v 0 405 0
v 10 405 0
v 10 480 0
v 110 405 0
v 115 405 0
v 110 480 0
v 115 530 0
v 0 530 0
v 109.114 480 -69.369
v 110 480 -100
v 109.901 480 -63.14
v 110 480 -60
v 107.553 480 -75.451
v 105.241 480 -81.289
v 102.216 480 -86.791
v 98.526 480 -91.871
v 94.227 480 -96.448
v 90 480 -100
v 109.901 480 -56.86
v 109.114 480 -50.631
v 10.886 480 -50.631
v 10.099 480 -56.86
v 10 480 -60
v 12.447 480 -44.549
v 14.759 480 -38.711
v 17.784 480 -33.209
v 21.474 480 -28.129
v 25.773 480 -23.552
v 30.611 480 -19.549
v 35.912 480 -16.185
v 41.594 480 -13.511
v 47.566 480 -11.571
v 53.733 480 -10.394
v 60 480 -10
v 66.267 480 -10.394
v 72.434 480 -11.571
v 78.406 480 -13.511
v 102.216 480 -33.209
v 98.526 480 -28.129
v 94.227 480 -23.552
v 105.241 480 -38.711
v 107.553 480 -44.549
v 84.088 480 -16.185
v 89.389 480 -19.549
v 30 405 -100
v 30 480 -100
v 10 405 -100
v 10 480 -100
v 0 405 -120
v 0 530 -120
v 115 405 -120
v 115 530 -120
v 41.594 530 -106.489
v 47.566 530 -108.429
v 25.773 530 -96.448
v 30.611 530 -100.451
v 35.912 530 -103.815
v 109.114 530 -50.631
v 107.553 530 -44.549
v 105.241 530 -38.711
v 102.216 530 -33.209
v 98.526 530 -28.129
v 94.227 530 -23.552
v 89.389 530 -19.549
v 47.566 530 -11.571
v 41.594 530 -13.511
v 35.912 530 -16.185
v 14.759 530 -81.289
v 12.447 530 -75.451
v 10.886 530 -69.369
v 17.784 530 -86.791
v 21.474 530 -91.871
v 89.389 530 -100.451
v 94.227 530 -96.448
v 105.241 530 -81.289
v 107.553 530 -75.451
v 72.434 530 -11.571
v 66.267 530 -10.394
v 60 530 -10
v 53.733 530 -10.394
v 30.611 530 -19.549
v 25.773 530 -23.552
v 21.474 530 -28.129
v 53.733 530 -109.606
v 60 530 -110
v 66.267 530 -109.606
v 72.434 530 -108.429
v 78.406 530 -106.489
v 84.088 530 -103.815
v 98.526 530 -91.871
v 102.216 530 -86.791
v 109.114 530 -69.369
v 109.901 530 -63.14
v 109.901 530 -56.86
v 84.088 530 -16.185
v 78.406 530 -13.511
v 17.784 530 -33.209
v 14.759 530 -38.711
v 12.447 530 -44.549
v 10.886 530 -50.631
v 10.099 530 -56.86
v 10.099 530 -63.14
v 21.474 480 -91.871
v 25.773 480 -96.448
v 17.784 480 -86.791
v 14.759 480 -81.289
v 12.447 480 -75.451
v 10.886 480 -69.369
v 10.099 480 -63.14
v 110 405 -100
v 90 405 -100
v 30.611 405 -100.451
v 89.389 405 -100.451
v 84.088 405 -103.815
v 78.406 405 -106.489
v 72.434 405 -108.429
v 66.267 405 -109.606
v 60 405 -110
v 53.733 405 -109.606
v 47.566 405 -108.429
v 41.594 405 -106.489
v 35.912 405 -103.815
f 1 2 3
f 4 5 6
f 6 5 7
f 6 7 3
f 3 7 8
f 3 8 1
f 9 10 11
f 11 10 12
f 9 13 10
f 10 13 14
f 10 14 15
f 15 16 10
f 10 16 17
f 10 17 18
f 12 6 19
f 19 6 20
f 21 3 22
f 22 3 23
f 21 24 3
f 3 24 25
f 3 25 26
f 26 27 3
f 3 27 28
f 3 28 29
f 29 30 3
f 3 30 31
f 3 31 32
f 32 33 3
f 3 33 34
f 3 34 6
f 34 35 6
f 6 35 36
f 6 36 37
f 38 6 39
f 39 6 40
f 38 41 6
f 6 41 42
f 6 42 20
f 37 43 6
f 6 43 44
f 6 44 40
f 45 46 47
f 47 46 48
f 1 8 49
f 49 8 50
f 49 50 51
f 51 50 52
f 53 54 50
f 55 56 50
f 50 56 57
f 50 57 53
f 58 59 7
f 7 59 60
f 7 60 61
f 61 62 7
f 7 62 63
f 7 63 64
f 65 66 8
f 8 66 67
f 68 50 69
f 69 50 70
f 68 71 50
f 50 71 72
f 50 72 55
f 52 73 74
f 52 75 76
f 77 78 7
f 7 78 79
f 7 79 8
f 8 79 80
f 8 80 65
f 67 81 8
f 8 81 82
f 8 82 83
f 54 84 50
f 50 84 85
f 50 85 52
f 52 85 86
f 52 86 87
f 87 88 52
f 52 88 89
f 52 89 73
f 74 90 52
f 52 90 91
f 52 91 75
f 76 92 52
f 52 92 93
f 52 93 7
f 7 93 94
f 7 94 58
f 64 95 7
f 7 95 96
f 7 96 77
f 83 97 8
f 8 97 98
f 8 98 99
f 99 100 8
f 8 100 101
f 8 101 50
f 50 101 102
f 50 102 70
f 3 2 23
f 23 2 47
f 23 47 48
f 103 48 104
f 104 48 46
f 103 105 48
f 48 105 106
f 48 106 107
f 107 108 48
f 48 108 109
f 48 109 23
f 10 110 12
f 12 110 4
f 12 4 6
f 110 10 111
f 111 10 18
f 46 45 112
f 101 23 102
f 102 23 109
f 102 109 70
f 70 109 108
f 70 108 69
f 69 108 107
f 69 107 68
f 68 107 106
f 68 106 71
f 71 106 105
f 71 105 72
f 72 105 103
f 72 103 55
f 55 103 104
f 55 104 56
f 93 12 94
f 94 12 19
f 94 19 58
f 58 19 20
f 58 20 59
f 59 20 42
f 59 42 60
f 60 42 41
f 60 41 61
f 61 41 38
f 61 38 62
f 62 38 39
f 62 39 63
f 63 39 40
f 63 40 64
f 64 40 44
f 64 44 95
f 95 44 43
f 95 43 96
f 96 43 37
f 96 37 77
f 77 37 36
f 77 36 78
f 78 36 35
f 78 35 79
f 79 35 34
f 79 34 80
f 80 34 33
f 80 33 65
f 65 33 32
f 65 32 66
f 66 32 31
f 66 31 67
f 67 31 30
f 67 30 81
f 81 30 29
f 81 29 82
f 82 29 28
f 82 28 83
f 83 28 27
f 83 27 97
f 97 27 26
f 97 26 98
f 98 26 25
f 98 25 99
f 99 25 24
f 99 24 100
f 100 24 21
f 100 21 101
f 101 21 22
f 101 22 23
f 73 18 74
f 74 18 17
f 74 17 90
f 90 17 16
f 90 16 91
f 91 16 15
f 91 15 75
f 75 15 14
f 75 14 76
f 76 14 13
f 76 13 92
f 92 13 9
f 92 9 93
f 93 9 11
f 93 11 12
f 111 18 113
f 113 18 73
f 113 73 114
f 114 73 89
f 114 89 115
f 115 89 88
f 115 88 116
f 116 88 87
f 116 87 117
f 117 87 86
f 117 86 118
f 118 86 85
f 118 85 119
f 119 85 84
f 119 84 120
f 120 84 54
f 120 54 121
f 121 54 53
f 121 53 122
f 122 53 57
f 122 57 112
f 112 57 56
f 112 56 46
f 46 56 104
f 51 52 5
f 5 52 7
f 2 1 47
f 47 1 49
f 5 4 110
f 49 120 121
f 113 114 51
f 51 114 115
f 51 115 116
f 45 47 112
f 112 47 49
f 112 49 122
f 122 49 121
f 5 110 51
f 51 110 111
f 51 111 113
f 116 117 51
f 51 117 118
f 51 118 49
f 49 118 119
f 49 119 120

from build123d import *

# Parameters (mm, degrees)
SKETCH1_W                      = 670
SKETCH1_H                      = 120
BOSS_EXTRUDE1_DEPTH            = 530
SKETCH2_W                      = 100
SKETCH2_H                      = 200
SKETCH2_W_2                    = 650
SKETCH2_H_2                    = 250
CUT_EXTRUDE1_DEPTH             = 100
SKETCH3_R                      = 50
CUT_EXTRUDE2_DEPTH             = 260
F_12_0_12_DIAMETER_HOLE2_D     = 12
F_12_0_12_DIAMETER_HOLE2_DEPTH = 30
F_12_0_12_DIAMETER_HOLE2_TIP   = 3.605163714
SKETCH8_W                      = 650
SKETCH8_H                      = 50
BOSS_EXTRUDE2_DEPTH            = 5
SKETCH9_W                      = 10
SKETCH9_H                      = 250
CUT_EXTRUDE3_DEPTH             = 717
CUT_EXTRUDE4_DEPTH             = 5
SKETCH11_W                     = 10
SKETCH11_H                     = 100
BOSS_EXTRUDE3_DEPTH            = 78
BOSS_EXTRUDE3_2_DEPTH          = 78
BOSS_EXTRUDE3_3_DEPTH          = 78
SKETCH12_W                     = 20
SKETCH12_H                     = 30
CUT_EXTRUDE5_DEPTH             = 80
SKETCH15_W                     = 30
SKETCH15_H                     = 23.536156656
SKETCH15_H_2                   = 28.986603691
CUT_EXTRUDE7_DEPTH             = 35
SHELL1_T                       = -3
SKETCH16_W                     = 14
SKETCH16_H                     = 14
CUT_EXTRUDE8_DEPTH             = 35
SKETCH17_W                     = 5.729882812
SKETCH17_H                     = 17.428393554
SKETCH17_W_2                   = 13.369726562
SKETCH17_H_2                   = 3.342431641
BOSS_EXTRUDE4_DEPTH            = 5
SKETCH18_W                     = 670
SKETCH18_H                     = 280
CUT_EXTRUDE10_DEPTH            = 159
CUT_EXTRUDE11_DEPTH            = 863.670273187
CUT_EXTRUDE11_DEPTH_BACK       = 863.670273187
SKETCH19_W                     = 555
SKETCH19_H                     = 250
CUT_EXTRUDE12_DEPTH            = 556.450267801
CUT_EXTRUDE12_DEPTH_BACK       = 556.450267801
SKETCH20_W                     = 115
SKETCH20_H                     = 125


with BuildPart() as part:
    # Sketch1 → Boss-Extrude1 (new body)
    with BuildSketch(Plane(origin=(0, 0, 0), x_dir=(1, 0, 0), z_dir=(0, 1, 0))):
        with Locations((335, 60)):
            Rectangle(SKETCH1_W, SKETCH1_H)
    extrude(amount=BOSS_EXTRUDE1_DEPTH)

    # Sketch2 → Cut-Extrude1 (cut)
    with BuildSketch(Plane.XY):
        with Locations((60, 380)):
            Rectangle(SKETCH2_W, SKETCH2_H)
        with Locations((170, 380)):
            Rectangle(SKETCH2_W, SKETCH2_H)
        with Locations((280, 380)):
            Rectangle(SKETCH2_W, SKETCH2_H)
        with Locations((390, 380)):
            Rectangle(SKETCH2_W, SKETCH2_H)
        with Locations((500, 380)):
            Rectangle(SKETCH2_W, SKETCH2_H)
        with Locations((610, 380)):
            Rectangle(SKETCH2_W, SKETCH2_H)
        with Locations((335, 135)):
            Rectangle(SKETCH2_W_2, SKETCH2_H_2)
    extrude(amount=-CUT_EXTRUDE1_DEPTH, mode=Mode.SUBTRACT)

    # Sketch3 → Cut-Extrude2 (cut)
    with BuildSketch(Plane(origin=(0, 530, 0), x_dir=(1, 0, 0), z_dir=(0, 1, 0))):
        with Locations(Location((60, 60, 0), (0, 0, 270))):
            Circle(SKETCH3_R)
        with Locations(Location((170, 60, 0), (0, 0, 270))):
            Circle(SKETCH3_R)
        with Locations(Location((280, 60, 0), (0, 0, 270))):
            Circle(SKETCH3_R)
        with Locations(Location((390, 60, 0), (0, 0, 270))):
            Circle(SKETCH3_R)
        with Locations(Location((500, 60, 0), (0, 0, 270))):
            Circle(SKETCH3_R)
        with Locations(Location((610, 60, 0), (0, 0, 270))):
            Circle(SKETCH3_R)
    extrude(amount=-CUT_EXTRUDE2_DEPTH, mode=Mode.SUBTRACT)

    # Ø12.0 (12) Diameter Hole2
    with Locations(Plane(origin=(59.704642413, 270, -102.411697903), x_dir=(0, 0, 1), z_dir=(0, 1, 0))):
        with Locations((0, 0), (-0.195888006, 111.8520513), (0.014838595, 221.167624818), (-0.341843303, 331.364008353), (0.657723149, 441.008646429), (1.288998006, 549.811854685)):
            Hole(F_12_0_12_DIAMETER_HOLE2_D / 2, depth=F_12_0_12_DIAMETER_HOLE2_DEPTH)
            with Locations((0, 0, -(F_12_0_12_DIAMETER_HOLE2_DEPTH + F_12_0_12_DIAMETER_HOLE2_TIP / 2))):  # 118° drill point
                Cone(0, F_12_0_12_DIAMETER_HOLE2_D / 2, F_12_0_12_DIAMETER_HOLE2_TIP, mode=Mode.SUBTRACT)

    # Sketch8 → Boss-Extrude2 (add)
    with BuildSketch(Plane.XY):
        with Locations((335, 305)):
            Rectangle(SKETCH8_W, SKETCH8_H)
    extrude(amount=-BOSS_EXTRUDE2_DEPTH)

    # Sketch9 → Cut-Extrude3 (cut)
    with BuildSketch(Plane(origin=(670, 0, 0), x_dir=(0, 0, -1), z_dir=(1, 0, 0))):
        with Locations((15, 135)):
            Rectangle(SKETCH9_W, SKETCH9_H)
    extrude(amount=-CUT_EXTRUDE3_DEPTH, mode=Mode.SUBTRACT)

    # Sketch10 → Cut-Extrude4 (cut)
    with BuildSketch(Plane(origin=(0, 10, 0), x_dir=(1, 0, 0), z_dir=(0, 1, 0))):
        Polygon((365, 61.943560596), (350, 87.924322709), (320, 87.924322709), (305, 61.943560596), (320, 35.962798482), (350, 35.962798482), align=None)
    extrude(amount=-CUT_EXTRUDE4_DEPTH, mode=Mode.SUBTRACT)

    # Sketch12 → Cut-Extrude5 (cut)
    with BuildSketch(Plane.XY.offset(-100)):
        with Locations((85.198613037, 245)):
            Rectangle(SKETCH12_W, SKETCH12_H)
        with Locations((195.198613037, 245)):
            Rectangle(SKETCH12_W, SKETCH12_H)
        with Locations((305.198613037, 245)):
            Rectangle(SKETCH12_W, SKETCH12_H)
        with Locations((415.198613037, 245)):
            Rectangle(SKETCH12_W, SKETCH12_H)
        with Locations((525.198613037, 245)):
            Rectangle(SKETCH12_W, SKETCH12_H)
        with Locations((635.198613037, 245)):
            Rectangle(SKETCH12_W, SKETCH12_H)
    extrude(amount=-CUT_EXTRUDE5_DEPTH, mode=Mode.SUBTRACT)

    # Sketch17 → Boss-Extrude4 (add)
    # profile 1 of 9: a face of its own
    with BuildSketch(Plane.XY):
        with BuildLine():
            Line((527.508830928, 289.835452458), (527.508830928, 307.263846012))
            Line((527.508830928, 307.263846012), (534.861434459, 307.263846012))
            add(Edge.make_bspline(
                [(534.861434459, 307.263846012), (535.181337774, 307.258256848), (535.803061116, 307.24739446), (536.703508491, 307.139069344), (537.544992916, 306.975202489), (538.325061607, 306.737496792), (539.040841948, 306.426020155), (539.698044515, 306.051894954), (540.290333057, 305.605079277), (540.822348212, 305.090232636), (541.284521701, 304.502523111), (541.692171296, 303.852565801), (542.030284458, 303.129762281), (542.309377095, 302.341316546), (542.5243908, 301.484161689), (542.679660381, 300.560045938), (542.773357357, 299.567500804), (542.783368073, 298.883107022), (542.788518428, 298.530997273)],
                knots=[0, 0, 0, 0, 1.135059408, 2.20595691, 3.214417064, 4.174978569, 5.094187092, 5.980001006, 6.853065862, 7.720814779, 8.600404634, 9.50058483, 10.438414914, 11.426825708, 12.465239141, 13.571113463, 14.750376389, 16, 16, 16, 16], degree=3))
            add(Edge.make_bspline(
                [(542.788518428, 298.530997273), (542.781740751, 298.180151665), (542.768592871, 297.499553336), (542.676885992, 296.511518461), (542.516733301, 295.591080531), (542.296748778, 294.736450427), (542.003051046, 293.953120444), (541.654236167, 293.233205539), (541.233025793, 292.585291498), (540.753136904, 292.000029304), (540.204772188, 291.484681411), (539.587651059, 291.044279297), (538.910779309, 290.668464036), (538.169670382, 290.361903209), (537.364073889, 290.124869172), (536.495133477, 289.954199984), (535.562644449, 289.853487388), (534.920131033, 289.841584621), (534.58911581, 289.835452458)],
                knots=[0, 0, 0, 0, 1.228418252, 2.382983832, 3.470276728, 4.496757894, 5.468023682, 6.394867725, 7.292157164, 8.167372942, 9.039072913, 9.918728341, 10.815246345, 11.744296628, 12.720973084, 13.750736166, 14.841206188, 16, 16, 16, 16], degree=3))
            Line((534.58911581, 289.835452458), (527.508830928, 289.835452458))
        make_face()
        with BuildLine():
            Line((533.238713741, 291.745413395), (534.048208904, 291.745413395))
            add(Edge.make_bspline(
                [(534.048208904, 291.745413395), (534.172894012, 291.749291978), (534.413033311, 291.756761998), (534.758676231, 291.825976613), (535.075745017, 291.938271137), (535.365749176, 292.094802589), (535.623404602, 292.300450923), (535.848862806, 292.551404902), (536.04776914, 292.844737637), (536.217685755, 293.190205032), (536.364284647, 293.596533622), (536.481764702, 294.076367921), (536.592118304, 294.630928744), (536.673672739, 295.265507643), (536.740044562, 295.978448886), (536.788346679, 296.768428292), (536.812018936, 297.636801208), (536.817188964, 298.241258393), (536.819890499, 298.55711002)],
                knots=[0, 0, 0, 0, 0.728710832, 1.403472396, 2.052289494, 2.690292559, 3.321919393, 3.970736491, 4.656696891, 5.388631723, 6.217040872, 7.17856157, 8.275589967, 9.523440737, 10.918935818, 12.463926104, 14.152268318, 16, 16, 16, 16], degree=3))
            add(Edge.make_bspline(
                [(536.819890499, 298.55711002), (536.8171426, 298.871715251), (536.811863063, 299.476166083), (536.7886758, 300.343334385), (536.739579947, 301.133216935), (536.674703848, 301.843934916), (536.589660404, 302.476324031), (536.488366458, 303.031681737), (536.362441588, 303.507627045), (536.222158727, 303.914921549), (536.050140993, 304.256514038), (535.858357073, 304.554097881), (535.62547107, 304.79746827), (535.36991257, 305.004888479), (535.079348843, 305.160875844), (534.761320266, 305.273944358), (534.414185903, 305.34216807), (534.172870641, 305.349893944), (534.048208904, 305.353885075)],
                knots=[0, 0, 0, 0, 1.842836665, 3.540640921, 5.080358154, 6.47765669, 7.719902824, 8.816971715, 9.781579111, 10.601733135, 11.334613876, 12.017393917, 12.666641099, 13.29908421, 13.937911793, 14.587567384, 15.270347425, 16, 16, 16, 16], degree=3))
            Line((534.048208904, 305.353885075), (533.238713741, 305.353885075))
            Line((533.238713741, 305.353885075), (533.238713741, 291.745413395))
        make_face(mode=Mode.SUBTRACT)
    # profile 2 of 9: a face of its own
    with BuildSketch(Plane.XY):
        with Locations((547.563420772, 298.549649235)):
            Rectangle(SKETCH17_W, SKETCH17_H)
    # profile 3 of 9: a face of its own
    with BuildSketch(Plane.XY):
        Polygon((564.514324092, 307.263846012), (564.514324092, 305.115139958), (558.545696163, 305.115139958), (558.545696163, 299.862747379), (563.559343624, 299.862747379), (563.559343624, 297.714041325), (558.545696163, 297.714041325), (558.545696163, 289.835452458), (552.81581335, 289.835452458), (552.81581335, 307.263846012), align=None)
    # profile 4 of 9: a face of its own
    with BuildSketch(Plane.XY):
        Polygon((577.645305538, 307.263846012), (577.645305538, 305.115139958), (571.676677608, 305.115139958), (571.676677608, 299.862747379), (576.690325069, 299.862747379), (576.690325069, 297.714041325), (571.676677608, 297.714041325), (571.676677608, 289.835452458), (565.946794795, 289.835452458), (565.946794795, 307.263846012), align=None)
    # profile 5 of 9: a face of its own
    with BuildSketch(Plane.XY):
        with Locations((584.330168819, 287.448001286)):
            Rectangle(SKETCH17_W_2, SKETCH17_H_2)
    # profile 6 of 9: a face of its own
    with BuildSketch(Plane.XY):
        with BuildLine():
            Line((605.578484249, 307.263846012), (605.578484249, 295.602639195))
            add(Edge.make_bspline(
                [(605.578484249, 295.602639195), (605.574209777, 295.35989389), (605.565919345, 294.889083964), (605.480877158, 294.20653885), (605.349958188, 293.569747554), (605.15926554, 292.978838165), (604.911867049, 292.436847071), (604.616163877, 291.936663973), (604.260702644, 291.487723021), (603.847299908, 291.08966617), (603.386881991, 290.731670113), (602.867295001, 290.425440037), (602.293741958, 290.168488385), (601.66690529, 289.960990771), (600.988052682, 289.797299786), (600.254912883, 289.679078851), (599.467035781, 289.60781007), (598.923618241, 289.60048219), (598.643684673, 289.59670734)],
                knots=[0, 0, 0, 0, 1.108173197, 2.149326602, 3.136215123, 4.073726706, 4.978516626, 5.852185058, 6.72141202, 7.584905625, 8.467554395, 9.379216169, 10.332422268, 11.332766067, 12.390653242, 13.518530507, 14.721707419, 16, 16, 16, 16], degree=3))
            add(Edge.make_bspline(
                [(598.643684673, 289.59670734), (598.373688491, 289.600411437), (597.851346557, 289.607577482), (597.093280473, 289.679448684), (596.387523889, 289.797736542), (595.733050135, 289.960122315), (595.130189942, 290.169220301), (594.579048171, 290.42623041), (594.078350789, 290.732835498), (593.633858028, 291.090104794), (593.234289459, 291.486851767), (592.899913678, 291.940746827), (592.609043638, 292.435866034), (592.375223767, 292.980322997), (592.191754821, 293.570441519), (592.063541006, 294.20666921), (591.983676196, 294.889343196), (591.974661767, 295.359932437), (591.970012569, 295.602639195)],
                knots=[0, 0, 0, 0, 1.258901956, 2.435505865, 3.547148904, 4.59359074, 5.576649289, 6.5183682, 7.424469602, 8.307507093, 9.172751023, 10.042627298, 10.928839176, 11.845659241, 12.799442865, 13.80597989, 14.868432463, 16, 16, 16, 16], degree=3))
            Line((591.970012569, 295.602639195), (591.970012569, 307.263846012))
            Line((591.970012569, 307.263846012), (597.699895381, 307.263846012))
            Line((597.699895381, 307.263846012), (597.699895381, 295.457153889))
            add(Edge.make_bspline(
                [(597.699895381, 295.457153889), (597.700816195, 295.287996189), (597.702584578, 294.963135903), (597.729908723, 294.499051493), (597.768241004, 294.079064133), (597.828226169, 293.705517832), (597.90066041, 293.377063412), (597.989882091, 293.09281535), (598.094998068, 292.852496478), (598.225239063, 292.654232043), (598.380826623, 292.495135011), (598.55368342, 292.353231761), (598.757556996, 292.238543846), (598.987648905, 292.146224908), (599.243380948, 292.070549638), (599.526120553, 292.020376099), (599.83553351, 291.990763905), (600.049971942, 291.986424568), (600.161954402, 291.984158512)],
                knots=[0, 0, 0, 0, 1.622370975, 3.115695595, 4.458049099, 5.666011203, 6.742434742, 7.681714947, 8.519814998, 9.250928664, 9.942747364, 10.646898194, 11.389596108, 12.175933929, 13.021386247, 13.943159715, 14.925891993, 16, 16, 16, 16], degree=3))
            add(Edge.make_bspline(
                [(600.161954402, 291.984158512), (600.283927219, 291.987190593), (600.521124756, 291.993087005), (600.86597014, 292.03390861), (601.187714881, 292.103380086), (601.484890424, 292.205377303), (601.758665297, 292.332852529), (602.012761516, 292.484567923), (602.236391413, 292.674631152), (602.439076761, 292.888441291), (602.620738276, 293.128529789), (602.771757722, 293.399928575), (602.905501548, 293.697121508), (603.005823683, 294.025060118), (603.089837826, 294.379999499), (603.146989706, 294.763086929), (603.186210275, 295.174074524), (603.189394751, 295.457053988), (603.191033077, 295.602639195)],
                knots=[0, 0, 0, 0, 1.083870311, 2.107775948, 3.08105344, 4.003637981, 4.893545291, 5.761570557, 6.624657808, 7.49233129, 8.376387281, 9.291996285, 10.246843261, 11.267344133, 12.334180325, 13.486053461, 14.706643157, 16, 16, 16, 16], degree=3))
            Line((603.191033077, 295.602639195), (603.191033077, 307.263846012))
            Line((603.191033077, 307.263846012), (605.578484249, 307.263846012))
        make_face()
    # profile 7 of 9: a face of its own
    with BuildSketch(Plane.XY):
        with BuildLine():
            Line((619.731593227, 302.015183827), (616.739818477, 301.526502415))
            add(Edge.make_bspline(
                [(616.739818477, 301.526502415), (616.748849224, 301.670726223), (616.765660669, 301.939210177), (616.78429066, 302.312269209), (616.796668381, 302.625642376), (616.798628236, 302.814722915), (616.799504756, 302.899286839)],
                knots=[0, 0, 0, 0, 1.261802504, 2.348944521, 3.261585937, 4, 4, 4, 4], degree=3))
            add(Edge.make_bspline(
                [(616.799504756, 302.899286839), (616.798306068, 303.007660677), (616.795968139, 303.219033721), (616.750451916, 303.523894877), (616.694806916, 303.811547356), (616.604352699, 304.076787391), (616.488181329, 304.320314265), (616.348943917, 304.543955606), (616.184187178, 304.745078709), (615.995833421, 304.928129987), (615.778009957, 305.083200131), (615.536269472, 305.218702836), (615.269765326, 305.333844758), (614.978065514, 305.431346685), (614.660683072, 305.504624438), (614.319025281, 305.556776695), (613.952471696, 305.585673441), (613.699597795, 305.590260771), (613.568984889, 305.592630192)],
                knots=[0, 0, 0, 0, 1.079280541, 2.105035848, 3.067950317, 3.99715044, 4.889989748, 5.753421302, 6.617030865, 7.476358039, 8.364190572, 9.274590025, 10.235106994, 11.254473582, 12.337095886, 13.478601727, 14.697662529, 16, 16, 16, 16], degree=3))
            add(Edge.make_bspline(
                [(613.568984889, 305.592630192), (613.391954632, 305.58912286), (613.059112606, 305.582528579), (612.595688488, 305.495339748), (612.198743126, 305.361419257), (611.87165349, 305.163811893), (611.613188167, 304.909795747), (611.433841092, 304.593316589), (611.323009072, 304.224665915), (611.313400221, 303.959558324), (611.308367061, 303.820693775)],
                knots=[0, 0, 0, 0, 1.294917039, 2.43462794, 3.440028966, 4.347597256, 5.210608309, 6.06356377, 6.985685997, 8, 8, 8, 8], degree=3))
            add(Edge.make_bspline(
                [(611.308367061, 303.820693775), (611.317562032, 303.705133219), (611.336106628, 303.472068433), (611.47315858, 303.132808312), (611.695999602, 302.811560885), (612.009295906, 302.510664216), (612.404107796, 302.221967273), (612.884407504, 301.948533431), (613.450813789, 301.688189695), (613.862519081, 301.536023727), (614.080048656, 301.455624958)],
                knots=[0, 0, 0, 0, 0.716839541, 1.445735977, 2.240793036, 3.131329288, 4.131129903, 5.273471266, 6.559404876, 8, 8, 8, 8], degree=3))
            add(Edge.make_bspline(
                [(614.080048656, 301.455624958), (614.335934702, 301.364918412), (614.834564244, 301.188164095), (615.547657928, 300.88707802), (616.213068388, 300.5749594), (616.829579094, 300.246613346), (617.397833174, 299.90520698), (617.914851624, 299.544556457), (618.386199073, 299.173962102), (618.807001026, 298.783874588), (619.177995113, 298.378100064), (619.4958685, 297.952745357), (619.771807525, 297.51723103), (619.991113975, 297.061458502), (620.169645242, 296.594624218), (620.292698657, 296.11024444), (620.364288243, 295.609761088), (620.37516617, 295.270864226), (620.380681514, 295.099036213)],
                knots=[0, 0, 0, 0, 1.359488612, 2.649152603, 3.874964776, 5.039588756, 6.146130126, 7.193090393, 8.194917302, 9.146793662, 10.063845301, 10.944476293, 11.803344532, 12.641736646, 13.473440096, 14.302714936, 15.139439897, 16, 16, 16, 16], degree=3))
            add(Edge.make_bspline(
                [(620.380681514, 295.099036213), (620.374476075, 294.902306495), (620.362285176, 294.515820995), (620.280160209, 293.948630617), (620.138011896, 293.409496554), (619.938489338, 292.895972278), (619.681049879, 292.411946655), (619.366518754, 291.954381076), (618.996510229, 291.525099427), (618.5710008, 291.128381035), (618.102222518, 290.765302239), (617.587803957, 290.450854345), (617.034458515, 290.187092261), (616.444107988, 289.968993032), (615.81453624, 289.801373099), (615.145337453, 289.685291013), (614.438790193, 289.606619894), (613.954683001, 289.600062276), (613.70700941, 289.59670734)],
                knots=[0, 0, 0, 0, 0.972121714, 1.909782367, 2.824924061, 3.721832975, 4.62620438, 5.527836938, 6.46026819, 7.421000932, 8.398101015, 9.385579713, 10.394244048, 11.422703992, 12.491421888, 13.608778581, 14.776629625, 16, 16, 16, 16], degree=3))
            add(Edge.make_bspline(
                [(613.70700941, 289.59670734), (613.445745367, 289.599650312), (612.939893069, 289.605348413), (612.207608113, 289.66709241), (611.525297432, 289.760984454), (610.893395078, 289.899706116), (610.309273131, 290.072394336), (609.776099392, 290.288320955), (609.295310255, 290.547303481), (608.863217672, 290.843007892), (608.478306623, 291.175775461), (608.148120946, 291.551766865), (607.86942369, 291.967163224), (607.639947144, 292.421521488), (607.466477665, 292.917583541), (607.339164663, 293.449829748), (607.264537999, 294.021332449), (607.254747521, 294.414908557), (607.249700069, 294.617815586)],
                knots=[0, 0, 0, 0, 1.342201143, 2.598733168, 3.773451092, 4.878874364, 5.91991243, 6.900006476, 7.829142054, 8.72062616, 9.585588575, 10.436728592, 11.283829734, 12.149664931, 13.044964919, 13.977937424, 14.957531465, 16, 16, 16, 16], degree=3))
            add(Edge.make_bspline(
                [(607.249700069, 294.617815586), (607.250803815, 294.692425759), (607.253213998, 294.855347393), (607.260452266, 295.122772538), (607.275636683, 295.433682216), (607.29037174, 295.656130545), (607.298195171, 295.774237248)],
                knots=[0, 0, 0, 0, 0.773500207, 1.689044709, 2.77302154, 4, 4, 4, 4], degree=3))
            Line((607.298195171, 295.774237248), (610.36457777, 296.337526509))
            add(Edge.make_bspline(
                [(610.36457777, 296.337526509), (610.326952988, 296.136337493), (610.255606535, 295.754830366), (610.178678473, 295.21219969), (610.124206629, 294.733311493), (610.11767002, 294.435147371), (610.114641475, 294.297001835)],
                knots=[0, 0, 0, 0, 1.192988372, 2.262218769, 3.194850416, 4, 4, 4, 4], degree=3))
            add(Edge.make_bspline(
                [(610.114641475, 294.297001835), (610.116191817, 294.183708768), (610.119182568, 293.965156219), (610.159053378, 293.648552813), (610.215988606, 293.352999663), (610.302906772, 293.079707227), (610.411206928, 292.826307836), (610.544682453, 292.59538211), (610.704385489, 292.386485019), (610.887496571, 292.200099922), (611.094689168, 292.033628705), (611.327456494, 291.892756696), (611.58347653, 291.771733922), (611.864681562, 291.677479524), (612.167961721, 291.596080628), (612.497219749, 291.548235723), (612.849461228, 291.512043782), (613.092629543, 291.508500084), (613.218327999, 291.506668278)],
                knots=[0, 0, 0, 0, 1.135776692, 2.191015738, 3.19649269, 4.151244236, 5.061952528, 5.956281389, 6.819534407, 7.692823504, 8.571441916, 9.478554956, 10.416037156, 11.406231466, 12.450054172, 13.561596327, 14.739541482, 16, 16, 16, 16], degree=3))
            add(Edge.make_bspline(
                [(613.218327999, 291.506668278), (613.423996012, 291.510791273), (613.810619321, 291.518541853), (614.349272542, 291.616708407), (614.810575885, 291.768742445), (615.189785268, 291.991387532), (615.490778961, 292.278756613), (615.698005174, 292.637320004), (615.824813318, 293.05638326), (615.837728413, 293.355975238), (615.844524288, 293.513619419)],
                knots=[0, 0, 0, 0, 1.308765556, 2.460272085, 3.475015317, 4.388076298, 5.239673503, 6.095681635, 6.997954785, 8, 8, 8, 8], degree=3))
            add(Edge.make_bspline(
                [(615.844524288, 293.513619419), (615.833808824, 293.638242951), (615.811807312, 293.894126055), (615.644884004, 294.264515838), (615.382382362, 294.620631473), (615.016807277, 294.962984909), (614.551376589, 295.293471235), (613.986957743, 295.616730224), (613.322148235, 295.933112033), (612.83677959, 296.119639164), (612.580430889, 296.21815395)],
                knots=[0, 0, 0, 0, 0.667930748, 1.371427933, 2.146459016, 3.034714139, 4.04893387, 5.207327294, 6.525042705, 8, 8, 8, 8], degree=3))
            add(Edge.make_bspline(
                [(612.580430889, 296.21815395), (612.374354345, 296.29679374), (611.970646869, 296.450850434), (611.394079385, 296.713586304), (610.853066711, 296.987016804), (610.357486361, 297.288235735), (609.896382561, 297.599610528), (609.477036946, 297.932256792), (609.09841673, 298.284556341), (608.758710772, 298.653375077), (608.457302107, 299.038989264), (608.199448649, 299.444659231), (607.977533299, 299.866789834), (607.798609588, 300.308107488), (607.65975715, 300.767821241), (607.559616231, 301.244439392), (607.497905054, 301.739995674), (607.491630423, 302.075933546), (607.488445186, 302.246468159)],
                knots=[0, 0, 0, 0, 1.249558333, 2.447906163, 3.58867143, 4.682264114, 5.731748367, 6.739728761, 7.711906036, 8.659384707, 9.578321416, 10.481344598, 11.379544271, 12.277135726, 13.175418307, 14.097160112, 15.034047388, 16, 16, 16, 16], degree=3))
            add(Edge.make_bspline(
                [(607.488445186, 302.246468159), (607.49282555, 302.439538736), (607.501402184, 302.817565692), (607.587451154, 303.36980586), (607.719291893, 303.894921371), (607.910558542, 304.389343064), (608.156192894, 304.852853762), (608.453187669, 305.288766511), (608.804241719, 305.697593471), (609.213503754, 306.066686531), (609.657214714, 306.407618241), (610.14376173, 306.697651931), (610.658716537, 306.950861947), (611.210636666, 307.148827868), (611.791820619, 307.313252612), (612.408080529, 307.421140415), (613.056315391, 307.490701612), (613.499160755, 307.498567824), (613.725661373, 307.502591129)],
                knots=[0, 0, 0, 0, 1.01033566, 1.978209831, 2.919499157, 3.840961976, 4.746855014, 5.660740114, 6.597989116, 7.56120833, 8.541877795, 9.523498025, 10.522416858, 11.542172371, 12.589598349, 13.681636521, 14.814234488, 16, 16, 16, 16], degree=3))
            add(Edge.make_bspline(
                [(613.725661373, 307.502591129), (613.968269855, 307.498219033), (614.438190994, 307.489750488), (615.120391152, 307.426787419), (615.755073228, 307.319142339), (616.345153155, 307.171557286), (616.887304575, 306.977590666), (617.384933999, 306.742393454), (617.834452216, 306.46201507), (618.236961315, 306.139451502), (618.593086714, 305.773322851), (618.897467704, 305.361641069), (619.158701245, 304.909408454), (619.366684143, 304.412232174), (619.529870326, 303.873247147), (619.649133834, 303.29158184), (619.720420497, 302.667301443), (619.72779778, 302.236712324), (619.731593227, 302.015183827)],
                knots=[0, 0, 0, 0, 1.248314423, 2.417925914, 3.521398822, 4.558068205, 5.543720209, 6.479599284, 7.385061127, 8.263440163, 9.127722873, 10.00561236, 10.891325273, 11.808802823, 12.772251995, 13.784947978, 14.860405143, 16, 16, 16, 16], degree=3))
        make_face()
    # profile 8 of 9: a face of its own
    with BuildSketch(Plane.XY):
        Polygon((633.989153194, 307.263846012), (633.989153194, 305.115139958), (628.020525264, 305.115139958), (628.020525264, 300.340237614), (633.034172725, 300.340237614), (633.034172725, 298.191531559), (628.020525264, 298.191531559), (628.020525264, 291.984158512), (634.944133663, 291.984158512), (634.944133663, 289.835452458), (622.290642452, 289.835452458), (622.290642452, 307.263846012), align=None)
    # profile 9 of 9: a face of its own
    with BuildSketch(Plane.XY):
        with BuildLine():
            Line((636.376604366, 289.835452458), (636.376604366, 307.263846012))
            Line((636.376604366, 307.263846012), (643.990335369, 307.263846012))
            add(Edge.make_bspline(
                [(643.990335369, 307.263846012), (644.237946498, 307.261150834), (644.721600887, 307.25588639), (645.426490561, 307.189203683), (646.094808274, 307.090496236), (646.724915796, 306.949857504), (647.317873659, 306.767252686), (647.871119087, 306.542146), (648.390701058, 306.282329135), (648.864494846, 305.976472528), (649.295093616, 305.642889252), (649.669668547, 305.279483604), (649.990389523, 304.894749072), (650.250664962, 304.483256345), (650.454275633, 304.048690948), (650.59581384, 303.587791605), (650.684089268, 303.104102537), (650.695510601, 302.772834174), (650.701311397, 302.604585835)],
                knots=[0, 0, 0, 0, 1.303269877, 2.545653735, 3.724355284, 4.8584284, 5.941462088, 6.987020715, 8.000098032, 8.995332524, 9.951400474, 10.863507538, 11.737823931, 12.582415999, 13.420128714, 14.25671499, 15.114600608, 16, 16, 16, 16], degree=3))
            add(Edge.make_bspline(
                [(650.701311397, 302.604585835), (650.698282873, 302.472674957), (650.692382063, 302.215658276), (650.651041486, 301.838684287), (650.580643818, 301.480313933), (650.481036683, 301.139915259), (650.347814833, 300.820175594), (650.191279492, 300.517863507), (650.009772227, 300.230553342), (649.788675198, 299.970497982), (649.548268341, 299.722842359), (649.274558803, 299.497116911), (648.974487035, 299.288655528), (648.642526299, 299.104010513), (648.287619671, 298.928055749), (647.899038177, 298.784921972), (647.486819978, 298.644749395), (647.19793098, 298.577036306), (647.049257183, 298.54218845)],
                knots=[0, 0, 0, 0, 1.057156483, 2.059775939, 3.035078039, 3.981068617, 4.897189472, 5.80650904, 6.70770952, 7.613691521, 8.536886357, 9.470937334, 10.45233069, 11.461024139, 12.51295332, 13.623444893, 14.776929983, 16, 16, 16, 16], degree=3))
            add(Edge.make_bspline(
                [(647.049257183, 298.54218845), (647.19164695, 298.499279419), (647.467865022, 298.416041346), (647.856360945, 298.265600017), (648.211652989, 298.111536308), (648.524185739, 297.936781388), (648.807636894, 297.762122504), (649.047122259, 297.564301324), (649.255235567, 297.361673563), (649.425188343, 297.135464734), (649.570253643, 296.882344437), (649.694827156, 296.586596707), (649.815179167, 296.247423665), (649.917667348, 295.859098311), (650.004750555, 295.423699276), (650.088222437, 294.944027189), (650.153853601, 294.416024546), (650.187587341, 294.048412906), (650.2051692, 293.856815525)],
                knots=[0, 0, 0, 0, 1.149282524, 2.229462177, 3.219229774, 4.139917433, 4.995948464, 5.788695735, 6.536448429, 7.236319808, 7.968460079, 8.78645307, 9.713791991, 10.749194692, 11.887975363, 13.146018663, 14.512518948, 16, 16, 16, 16], degree=3))
            add(Edge.make_bspline(
                [(650.2051692, 293.856815525), (650.225980287, 293.627849833), (650.265975604, 293.187817268), (650.348933081, 292.554613589), (650.44386163, 291.974357025), (650.555874504, 291.44528724), (650.681301216, 290.967898855), (650.821280597, 290.540469593), (650.979920039, 290.165788217), (651.10484481, 289.941461656), (651.163880062, 289.835452458)],
                knots=[0, 0, 0, 0, 1.324580516, 2.545615266, 3.678710841, 4.711533017, 5.660403917, 6.521349952, 7.301239649, 8, 8, 8, 8], degree=3))
            Line((651.163880062, 289.835452458), (645.213904094, 289.835452458))
            add(Edge.make_bspline(
                [(645.213904094, 289.835452458), (645.12229736, 290.069847279), (644.935171241, 290.548648246), (644.7595281, 291.319414791), (644.64846922, 292.142514735), (644.635117598, 292.70994511), (644.628232479, 293.002555653)],
                knots=[0, 0, 0, 0, 0.930410518, 1.900560147, 2.917368081, 4, 4, 4, 4], degree=3))
            Line((644.628232479, 293.002555653), (644.605850124, 294.002300831))
            Line((644.605850124, 294.002300831), (644.579737377, 295.266903874))
            add(Edge.make_bspline(
                [(644.579737377, 295.266903874), (644.573694669, 295.477395004), (644.562357007, 295.872330118), (644.469348432, 296.426164013), (644.30178735, 296.894645884), (644.073222546, 297.287223005), (643.766741442, 297.590613479), (643.39104803, 297.804152917), (642.950456912, 297.93396284), (642.634664848, 297.946292392), (642.468335247, 297.952786442)],
                knots=[0, 0, 0, 0, 1.295300309, 2.430314163, 3.439929415, 4.342995669, 5.203512789, 6.060756153, 6.978588463, 8, 8, 8, 8], degree=3))
            Line((642.468335247, 297.952786442), (642.106487178, 297.952786442))
            Line((642.106487178, 297.952786442), (642.106487178, 289.835452458))
            Line((642.106487178, 289.835452458), (636.376604366, 289.835452458))
        make_face()
        with BuildLine():
            Line((642.106487178, 299.862747379), (642.617550945, 299.862747379))
            add(Edge.make_bspline(
                [(642.617550945, 299.862747379), (642.722054451, 299.865172716), (642.925280724, 299.869889229), (643.220054897, 299.898289891), (643.494111408, 299.951809873), (643.749840966, 300.021017819), (643.984372137, 300.114851792), (644.200147241, 300.225818296), (644.391160406, 300.362685327), (644.565327067, 300.516342321), (644.718148635, 300.691986294), (644.850351299, 300.889034217), (644.961199162, 301.106225057), (645.056078491, 301.342818683), (645.125883912, 301.600830857), (645.173262731, 301.879472914), (645.203404658, 302.177423605), (645.207875435, 302.383174491), (645.210173702, 302.488943669)],
                knots=[0, 0, 0, 0, 1.184986479, 2.304423995, 3.352332712, 4.347714965, 5.303263624, 6.211353909, 7.091434645, 7.960150225, 8.839440182, 9.723126897, 10.64371617, 11.599264829, 12.608232147, 13.667459739, 14.800924404, 16, 16, 16, 16], degree=3))
            add(Edge.make_bspline(
                [(645.210173702, 302.488943669), (645.207875435, 302.594712847), (645.203404658, 302.800463732), (645.173262731, 303.098414423), (645.125883912, 303.37705648), (645.056078491, 303.635068654), (644.961199162, 303.87166228), (644.850351299, 304.08885312), (644.718148635, 304.285901043), (644.565327067, 304.461545017), (644.391160406, 304.61520201), (644.200147241, 304.752069041), (643.984372137, 304.863035546), (643.749840966, 304.956869518), (643.494111408, 305.026077464), (643.220054897, 305.079597446), (642.925280724, 305.107998108), (642.722054451, 305.112714621), (642.617550945, 305.115139958)],
                knots=[0, 0, 0, 0, 1.199075596, 2.332540261, 3.391767853, 4.400735171, 5.35628383, 6.276873103, 7.160559818, 8.039849775, 8.908565355, 9.788646091, 10.696736376, 11.652285035, 12.647667288, 13.695576005, 14.815013521, 16, 16, 16, 16], degree=3))
            Line((642.617550945, 305.115139958), (642.106487178, 305.115139958))
            Line((642.106487178, 305.115139958), (642.106487178, 299.862747379))
        make_face(mode=Mode.SUBTRACT)
    extrude(amount=BOSS_EXTRUDE4_DEPTH)


with BuildPart() as body_2:
    # Sketch11 → Boss-Extrude3 (new body)
    with BuildSketch(Plane.XY.offset(-100)):
        with Locations((255, 60)):
            Rectangle(SKETCH11_W, SKETCH11_H)
    extrude(amount=BOSS_EXTRUDE3_DEPTH)


with BuildPart() as body_3:
    # Sketch11 → Boss-Extrude3 2 (new body)
    with BuildSketch(Plane.XY.offset(-100)):
        with Locations((415, 60)):
            Rectangle(SKETCH11_W, SKETCH11_H)
    extrude(amount=BOSS_EXTRUDE3_2_DEPTH)


with BuildPart() as body_4:
    # Sketch11 → Boss-Extrude3 3 (new body)
    with BuildSketch(Plane.XY.offset(-100)):
        Polygon((25, 198.45686471), (325, 145.558770497), (325, 122.01775856), (345, 122.01775856), (345, 145.558770497), (645, 198.45686471), align=None)
    extrude(amount=BOSS_EXTRUDE3_3_DEPTH)

    # Sketch15 → Cut-Extrude7 (cut)
    with BuildSketch(Plane(origin=(345, 0, 0), x_dir=(0, 0, -1), z_dir=(1, 0, 0))):
        with Locations((35, 133.231921672)):
            Rectangle(SKETCH15_W, SKETCH15_H)
        with Locations((85, 130.506698154)):
            Rectangle(SKETCH15_W, SKETCH15_H_2)
    extrude(amount=-CUT_EXTRUDE7_DEPTH, mode=Mode.SUBTRACT)

    # Shell1
    shell1_openings = [body_4.faces().sort_by_distance(p)[0] for p in [
        (335, 198.45686471, -61),
    ]]
    offset(amount=SHELL1_T, openings=shell1_openings, kind=Kind.INTERSECTION)

    # Sketch16 → Cut-Extrude8 (cut)
    with BuildSketch(Plane.XZ.offset(-122.01775856)):
        with Locations((335, -60)):
            Rectangle(SKETCH16_W, SKETCH16_H)
    extrude(amount=-CUT_EXTRUDE8_DEPTH, mode=Mode.SUBTRACT)


with BuildPart() as cut_extrude10_tool:
    # Sketch18 → Cut-Extrude10 (new body)
    with BuildSketch(Plane.XY):
        with Locations((335, 140)):
            Rectangle(SKETCH18_W, SKETCH18_H)
    extrude(amount=-CUT_EXTRUDE10_DEPTH)


with BuildPart() as part_1:
    add(part.part)

    # Cut-Extrude10: cut by cut_extrude10_tool
    add(cut_extrude10_tool.part, mode=Mode.SUBTRACT)

    # Sketch19 → Cut-Extrude11 (cut, two sides: drawn at the far end of the back side and taken through both)
    with BuildSketch(Plane.XY.offset(-CUT_EXTRUDE11_DEPTH_BACK)):
        with Locations((392.5, 405)):
            Rectangle(SKETCH19_W, SKETCH19_H)
    extrude(amount=CUT_EXTRUDE11_DEPTH + CUT_EXTRUDE11_DEPTH_BACK, mode=Mode.SUBTRACT)

    # Sketch20 → Cut-Extrude12 (cut, two sides: drawn at the far end of the back side and taken through both)
    with BuildSketch(Plane.XY.offset(-CUT_EXTRUDE12_DEPTH_BACK)):
        with Locations((57.5, 342.5)):
            Rectangle(SKETCH20_W, SKETCH20_H)
    extrude(amount=CUT_EXTRUDE12_DEPTH + CUT_EXTRUDE12_DEPTH_BACK, mode=Mode.SUBTRACT)


with BuildPart() as body_2_1:
    add(body_2.part)

    # Cut-Extrude10: cut by cut_extrude10_tool
    add(cut_extrude10_tool.part, mode=Mode.SUBTRACT)


with BuildPart() as body_3_1:
    add(body_3.part)

    # Cut-Extrude10: cut by cut_extrude10_tool
    add(cut_extrude10_tool.part, mode=Mode.SUBTRACT)


with BuildPart() as body_4_1:
    add(body_4.part)

    # Cut-Extrude10: cut by cut_extrude10_tool
    add(cut_extrude10_tool.part, mode=Mode.SUBTRACT)


solid = part_1.part
